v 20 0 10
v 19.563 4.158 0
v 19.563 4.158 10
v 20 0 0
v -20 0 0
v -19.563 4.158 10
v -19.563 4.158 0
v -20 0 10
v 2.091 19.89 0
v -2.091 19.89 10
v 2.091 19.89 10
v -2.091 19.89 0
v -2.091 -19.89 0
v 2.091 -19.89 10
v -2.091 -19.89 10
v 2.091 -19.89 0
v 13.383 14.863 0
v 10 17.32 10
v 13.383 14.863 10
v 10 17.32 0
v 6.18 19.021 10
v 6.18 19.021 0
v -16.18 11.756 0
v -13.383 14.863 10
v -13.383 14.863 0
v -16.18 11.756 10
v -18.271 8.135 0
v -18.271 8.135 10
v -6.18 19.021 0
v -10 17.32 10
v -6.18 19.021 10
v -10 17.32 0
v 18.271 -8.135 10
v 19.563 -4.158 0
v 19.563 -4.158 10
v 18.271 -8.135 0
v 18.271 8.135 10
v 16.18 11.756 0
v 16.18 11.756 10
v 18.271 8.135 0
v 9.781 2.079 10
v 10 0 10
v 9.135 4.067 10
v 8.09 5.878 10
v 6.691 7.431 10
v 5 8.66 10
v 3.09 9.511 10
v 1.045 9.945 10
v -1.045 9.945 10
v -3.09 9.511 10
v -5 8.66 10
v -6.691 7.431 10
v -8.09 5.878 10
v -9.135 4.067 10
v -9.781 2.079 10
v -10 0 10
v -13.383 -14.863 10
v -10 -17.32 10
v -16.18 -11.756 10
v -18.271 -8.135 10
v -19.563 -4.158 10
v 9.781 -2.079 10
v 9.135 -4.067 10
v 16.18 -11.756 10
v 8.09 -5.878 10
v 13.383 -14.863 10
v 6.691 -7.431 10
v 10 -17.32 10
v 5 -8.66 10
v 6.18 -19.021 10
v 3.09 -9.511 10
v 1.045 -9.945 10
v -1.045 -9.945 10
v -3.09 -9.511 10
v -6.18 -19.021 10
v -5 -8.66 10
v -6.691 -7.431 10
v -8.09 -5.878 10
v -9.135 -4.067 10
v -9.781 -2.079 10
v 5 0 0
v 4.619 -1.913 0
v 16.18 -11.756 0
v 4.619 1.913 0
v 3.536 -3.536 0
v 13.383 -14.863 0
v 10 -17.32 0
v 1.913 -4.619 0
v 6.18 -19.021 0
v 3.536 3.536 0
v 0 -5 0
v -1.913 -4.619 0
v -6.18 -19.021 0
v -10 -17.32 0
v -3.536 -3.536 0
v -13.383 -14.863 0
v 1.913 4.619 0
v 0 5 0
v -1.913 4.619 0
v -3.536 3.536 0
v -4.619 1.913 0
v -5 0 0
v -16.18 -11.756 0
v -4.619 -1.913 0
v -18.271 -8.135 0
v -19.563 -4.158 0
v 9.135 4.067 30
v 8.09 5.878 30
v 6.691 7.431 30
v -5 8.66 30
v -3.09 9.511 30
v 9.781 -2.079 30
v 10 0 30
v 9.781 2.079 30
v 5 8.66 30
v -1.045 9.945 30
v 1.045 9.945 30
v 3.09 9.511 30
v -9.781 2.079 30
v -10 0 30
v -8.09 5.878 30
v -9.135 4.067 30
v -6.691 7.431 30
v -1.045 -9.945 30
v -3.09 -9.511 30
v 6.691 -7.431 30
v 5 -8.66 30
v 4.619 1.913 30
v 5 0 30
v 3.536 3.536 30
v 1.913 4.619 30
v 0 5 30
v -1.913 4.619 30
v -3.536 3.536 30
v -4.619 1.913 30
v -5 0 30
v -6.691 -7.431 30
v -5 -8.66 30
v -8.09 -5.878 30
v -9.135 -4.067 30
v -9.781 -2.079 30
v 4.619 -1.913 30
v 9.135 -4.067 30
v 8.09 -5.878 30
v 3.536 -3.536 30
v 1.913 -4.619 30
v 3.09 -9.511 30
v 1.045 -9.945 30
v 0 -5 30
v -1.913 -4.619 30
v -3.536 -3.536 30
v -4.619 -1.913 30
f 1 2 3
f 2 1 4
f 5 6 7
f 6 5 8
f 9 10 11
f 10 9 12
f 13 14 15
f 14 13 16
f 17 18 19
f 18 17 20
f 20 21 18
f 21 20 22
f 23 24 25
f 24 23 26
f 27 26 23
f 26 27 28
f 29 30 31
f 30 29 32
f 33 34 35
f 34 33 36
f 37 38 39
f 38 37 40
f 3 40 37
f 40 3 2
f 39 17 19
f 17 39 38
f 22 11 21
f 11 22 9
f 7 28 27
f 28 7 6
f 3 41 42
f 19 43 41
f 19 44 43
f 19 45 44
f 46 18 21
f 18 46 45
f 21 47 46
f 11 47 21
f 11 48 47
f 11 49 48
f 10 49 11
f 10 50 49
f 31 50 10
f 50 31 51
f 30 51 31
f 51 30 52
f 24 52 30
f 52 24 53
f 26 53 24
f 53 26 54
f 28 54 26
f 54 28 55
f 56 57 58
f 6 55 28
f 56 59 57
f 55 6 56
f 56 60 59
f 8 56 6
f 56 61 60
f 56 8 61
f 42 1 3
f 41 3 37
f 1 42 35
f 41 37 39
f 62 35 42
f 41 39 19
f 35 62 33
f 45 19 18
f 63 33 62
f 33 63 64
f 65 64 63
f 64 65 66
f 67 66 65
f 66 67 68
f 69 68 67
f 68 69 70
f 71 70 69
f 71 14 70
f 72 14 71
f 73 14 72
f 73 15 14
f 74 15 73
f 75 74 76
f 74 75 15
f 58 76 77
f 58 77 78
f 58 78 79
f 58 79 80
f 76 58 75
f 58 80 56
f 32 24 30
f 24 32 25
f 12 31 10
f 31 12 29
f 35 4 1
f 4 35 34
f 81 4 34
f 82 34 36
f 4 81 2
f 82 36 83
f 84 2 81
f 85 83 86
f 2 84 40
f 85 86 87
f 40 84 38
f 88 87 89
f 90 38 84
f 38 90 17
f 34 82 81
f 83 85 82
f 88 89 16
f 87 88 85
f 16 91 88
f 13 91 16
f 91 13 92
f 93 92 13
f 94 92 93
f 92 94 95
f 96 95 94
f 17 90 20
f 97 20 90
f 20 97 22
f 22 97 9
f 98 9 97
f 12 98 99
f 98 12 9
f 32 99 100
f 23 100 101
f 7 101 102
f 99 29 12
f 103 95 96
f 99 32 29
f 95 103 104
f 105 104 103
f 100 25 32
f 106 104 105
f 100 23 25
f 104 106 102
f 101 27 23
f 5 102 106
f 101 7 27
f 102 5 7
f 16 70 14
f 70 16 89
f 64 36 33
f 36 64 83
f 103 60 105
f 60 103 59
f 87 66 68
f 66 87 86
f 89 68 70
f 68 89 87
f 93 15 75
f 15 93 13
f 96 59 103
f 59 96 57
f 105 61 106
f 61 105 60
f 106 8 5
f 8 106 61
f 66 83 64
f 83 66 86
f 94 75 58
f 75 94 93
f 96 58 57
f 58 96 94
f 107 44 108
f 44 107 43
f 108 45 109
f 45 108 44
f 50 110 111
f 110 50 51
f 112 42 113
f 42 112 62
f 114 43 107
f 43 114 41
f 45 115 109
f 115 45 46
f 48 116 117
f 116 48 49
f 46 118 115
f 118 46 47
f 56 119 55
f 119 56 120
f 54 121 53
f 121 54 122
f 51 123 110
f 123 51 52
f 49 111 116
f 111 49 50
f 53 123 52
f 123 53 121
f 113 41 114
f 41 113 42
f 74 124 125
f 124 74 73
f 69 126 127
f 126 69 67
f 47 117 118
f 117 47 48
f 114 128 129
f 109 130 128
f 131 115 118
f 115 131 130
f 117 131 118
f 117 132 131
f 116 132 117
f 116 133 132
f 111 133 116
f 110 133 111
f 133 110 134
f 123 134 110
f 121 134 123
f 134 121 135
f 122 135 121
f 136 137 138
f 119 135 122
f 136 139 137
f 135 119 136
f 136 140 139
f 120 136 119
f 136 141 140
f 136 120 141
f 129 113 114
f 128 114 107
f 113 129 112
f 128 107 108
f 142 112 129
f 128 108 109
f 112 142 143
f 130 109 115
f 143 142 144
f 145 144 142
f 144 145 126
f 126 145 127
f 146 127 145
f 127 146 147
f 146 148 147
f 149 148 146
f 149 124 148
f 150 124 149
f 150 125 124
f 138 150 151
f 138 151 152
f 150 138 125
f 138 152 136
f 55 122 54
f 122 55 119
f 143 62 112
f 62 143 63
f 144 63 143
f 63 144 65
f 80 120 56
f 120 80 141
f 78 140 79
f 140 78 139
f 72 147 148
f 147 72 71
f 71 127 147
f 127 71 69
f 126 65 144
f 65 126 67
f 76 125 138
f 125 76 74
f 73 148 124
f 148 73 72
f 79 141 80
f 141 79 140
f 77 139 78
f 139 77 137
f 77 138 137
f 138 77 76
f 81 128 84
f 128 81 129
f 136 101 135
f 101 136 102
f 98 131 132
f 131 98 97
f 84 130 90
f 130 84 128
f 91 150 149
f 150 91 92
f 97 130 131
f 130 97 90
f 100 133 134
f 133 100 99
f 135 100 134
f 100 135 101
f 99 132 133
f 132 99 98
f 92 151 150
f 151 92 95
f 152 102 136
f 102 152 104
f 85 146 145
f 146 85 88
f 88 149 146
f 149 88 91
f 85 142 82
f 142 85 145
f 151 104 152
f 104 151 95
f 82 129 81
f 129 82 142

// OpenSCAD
difference() {
  union(){
    cylinder(r1=20, r2=20, h=10, center=false);
    cylinder(r1=10, r2=10, h=30, center=false);
  }

  cylinder(r1=5, r2=5, h=50, center=false);
}
